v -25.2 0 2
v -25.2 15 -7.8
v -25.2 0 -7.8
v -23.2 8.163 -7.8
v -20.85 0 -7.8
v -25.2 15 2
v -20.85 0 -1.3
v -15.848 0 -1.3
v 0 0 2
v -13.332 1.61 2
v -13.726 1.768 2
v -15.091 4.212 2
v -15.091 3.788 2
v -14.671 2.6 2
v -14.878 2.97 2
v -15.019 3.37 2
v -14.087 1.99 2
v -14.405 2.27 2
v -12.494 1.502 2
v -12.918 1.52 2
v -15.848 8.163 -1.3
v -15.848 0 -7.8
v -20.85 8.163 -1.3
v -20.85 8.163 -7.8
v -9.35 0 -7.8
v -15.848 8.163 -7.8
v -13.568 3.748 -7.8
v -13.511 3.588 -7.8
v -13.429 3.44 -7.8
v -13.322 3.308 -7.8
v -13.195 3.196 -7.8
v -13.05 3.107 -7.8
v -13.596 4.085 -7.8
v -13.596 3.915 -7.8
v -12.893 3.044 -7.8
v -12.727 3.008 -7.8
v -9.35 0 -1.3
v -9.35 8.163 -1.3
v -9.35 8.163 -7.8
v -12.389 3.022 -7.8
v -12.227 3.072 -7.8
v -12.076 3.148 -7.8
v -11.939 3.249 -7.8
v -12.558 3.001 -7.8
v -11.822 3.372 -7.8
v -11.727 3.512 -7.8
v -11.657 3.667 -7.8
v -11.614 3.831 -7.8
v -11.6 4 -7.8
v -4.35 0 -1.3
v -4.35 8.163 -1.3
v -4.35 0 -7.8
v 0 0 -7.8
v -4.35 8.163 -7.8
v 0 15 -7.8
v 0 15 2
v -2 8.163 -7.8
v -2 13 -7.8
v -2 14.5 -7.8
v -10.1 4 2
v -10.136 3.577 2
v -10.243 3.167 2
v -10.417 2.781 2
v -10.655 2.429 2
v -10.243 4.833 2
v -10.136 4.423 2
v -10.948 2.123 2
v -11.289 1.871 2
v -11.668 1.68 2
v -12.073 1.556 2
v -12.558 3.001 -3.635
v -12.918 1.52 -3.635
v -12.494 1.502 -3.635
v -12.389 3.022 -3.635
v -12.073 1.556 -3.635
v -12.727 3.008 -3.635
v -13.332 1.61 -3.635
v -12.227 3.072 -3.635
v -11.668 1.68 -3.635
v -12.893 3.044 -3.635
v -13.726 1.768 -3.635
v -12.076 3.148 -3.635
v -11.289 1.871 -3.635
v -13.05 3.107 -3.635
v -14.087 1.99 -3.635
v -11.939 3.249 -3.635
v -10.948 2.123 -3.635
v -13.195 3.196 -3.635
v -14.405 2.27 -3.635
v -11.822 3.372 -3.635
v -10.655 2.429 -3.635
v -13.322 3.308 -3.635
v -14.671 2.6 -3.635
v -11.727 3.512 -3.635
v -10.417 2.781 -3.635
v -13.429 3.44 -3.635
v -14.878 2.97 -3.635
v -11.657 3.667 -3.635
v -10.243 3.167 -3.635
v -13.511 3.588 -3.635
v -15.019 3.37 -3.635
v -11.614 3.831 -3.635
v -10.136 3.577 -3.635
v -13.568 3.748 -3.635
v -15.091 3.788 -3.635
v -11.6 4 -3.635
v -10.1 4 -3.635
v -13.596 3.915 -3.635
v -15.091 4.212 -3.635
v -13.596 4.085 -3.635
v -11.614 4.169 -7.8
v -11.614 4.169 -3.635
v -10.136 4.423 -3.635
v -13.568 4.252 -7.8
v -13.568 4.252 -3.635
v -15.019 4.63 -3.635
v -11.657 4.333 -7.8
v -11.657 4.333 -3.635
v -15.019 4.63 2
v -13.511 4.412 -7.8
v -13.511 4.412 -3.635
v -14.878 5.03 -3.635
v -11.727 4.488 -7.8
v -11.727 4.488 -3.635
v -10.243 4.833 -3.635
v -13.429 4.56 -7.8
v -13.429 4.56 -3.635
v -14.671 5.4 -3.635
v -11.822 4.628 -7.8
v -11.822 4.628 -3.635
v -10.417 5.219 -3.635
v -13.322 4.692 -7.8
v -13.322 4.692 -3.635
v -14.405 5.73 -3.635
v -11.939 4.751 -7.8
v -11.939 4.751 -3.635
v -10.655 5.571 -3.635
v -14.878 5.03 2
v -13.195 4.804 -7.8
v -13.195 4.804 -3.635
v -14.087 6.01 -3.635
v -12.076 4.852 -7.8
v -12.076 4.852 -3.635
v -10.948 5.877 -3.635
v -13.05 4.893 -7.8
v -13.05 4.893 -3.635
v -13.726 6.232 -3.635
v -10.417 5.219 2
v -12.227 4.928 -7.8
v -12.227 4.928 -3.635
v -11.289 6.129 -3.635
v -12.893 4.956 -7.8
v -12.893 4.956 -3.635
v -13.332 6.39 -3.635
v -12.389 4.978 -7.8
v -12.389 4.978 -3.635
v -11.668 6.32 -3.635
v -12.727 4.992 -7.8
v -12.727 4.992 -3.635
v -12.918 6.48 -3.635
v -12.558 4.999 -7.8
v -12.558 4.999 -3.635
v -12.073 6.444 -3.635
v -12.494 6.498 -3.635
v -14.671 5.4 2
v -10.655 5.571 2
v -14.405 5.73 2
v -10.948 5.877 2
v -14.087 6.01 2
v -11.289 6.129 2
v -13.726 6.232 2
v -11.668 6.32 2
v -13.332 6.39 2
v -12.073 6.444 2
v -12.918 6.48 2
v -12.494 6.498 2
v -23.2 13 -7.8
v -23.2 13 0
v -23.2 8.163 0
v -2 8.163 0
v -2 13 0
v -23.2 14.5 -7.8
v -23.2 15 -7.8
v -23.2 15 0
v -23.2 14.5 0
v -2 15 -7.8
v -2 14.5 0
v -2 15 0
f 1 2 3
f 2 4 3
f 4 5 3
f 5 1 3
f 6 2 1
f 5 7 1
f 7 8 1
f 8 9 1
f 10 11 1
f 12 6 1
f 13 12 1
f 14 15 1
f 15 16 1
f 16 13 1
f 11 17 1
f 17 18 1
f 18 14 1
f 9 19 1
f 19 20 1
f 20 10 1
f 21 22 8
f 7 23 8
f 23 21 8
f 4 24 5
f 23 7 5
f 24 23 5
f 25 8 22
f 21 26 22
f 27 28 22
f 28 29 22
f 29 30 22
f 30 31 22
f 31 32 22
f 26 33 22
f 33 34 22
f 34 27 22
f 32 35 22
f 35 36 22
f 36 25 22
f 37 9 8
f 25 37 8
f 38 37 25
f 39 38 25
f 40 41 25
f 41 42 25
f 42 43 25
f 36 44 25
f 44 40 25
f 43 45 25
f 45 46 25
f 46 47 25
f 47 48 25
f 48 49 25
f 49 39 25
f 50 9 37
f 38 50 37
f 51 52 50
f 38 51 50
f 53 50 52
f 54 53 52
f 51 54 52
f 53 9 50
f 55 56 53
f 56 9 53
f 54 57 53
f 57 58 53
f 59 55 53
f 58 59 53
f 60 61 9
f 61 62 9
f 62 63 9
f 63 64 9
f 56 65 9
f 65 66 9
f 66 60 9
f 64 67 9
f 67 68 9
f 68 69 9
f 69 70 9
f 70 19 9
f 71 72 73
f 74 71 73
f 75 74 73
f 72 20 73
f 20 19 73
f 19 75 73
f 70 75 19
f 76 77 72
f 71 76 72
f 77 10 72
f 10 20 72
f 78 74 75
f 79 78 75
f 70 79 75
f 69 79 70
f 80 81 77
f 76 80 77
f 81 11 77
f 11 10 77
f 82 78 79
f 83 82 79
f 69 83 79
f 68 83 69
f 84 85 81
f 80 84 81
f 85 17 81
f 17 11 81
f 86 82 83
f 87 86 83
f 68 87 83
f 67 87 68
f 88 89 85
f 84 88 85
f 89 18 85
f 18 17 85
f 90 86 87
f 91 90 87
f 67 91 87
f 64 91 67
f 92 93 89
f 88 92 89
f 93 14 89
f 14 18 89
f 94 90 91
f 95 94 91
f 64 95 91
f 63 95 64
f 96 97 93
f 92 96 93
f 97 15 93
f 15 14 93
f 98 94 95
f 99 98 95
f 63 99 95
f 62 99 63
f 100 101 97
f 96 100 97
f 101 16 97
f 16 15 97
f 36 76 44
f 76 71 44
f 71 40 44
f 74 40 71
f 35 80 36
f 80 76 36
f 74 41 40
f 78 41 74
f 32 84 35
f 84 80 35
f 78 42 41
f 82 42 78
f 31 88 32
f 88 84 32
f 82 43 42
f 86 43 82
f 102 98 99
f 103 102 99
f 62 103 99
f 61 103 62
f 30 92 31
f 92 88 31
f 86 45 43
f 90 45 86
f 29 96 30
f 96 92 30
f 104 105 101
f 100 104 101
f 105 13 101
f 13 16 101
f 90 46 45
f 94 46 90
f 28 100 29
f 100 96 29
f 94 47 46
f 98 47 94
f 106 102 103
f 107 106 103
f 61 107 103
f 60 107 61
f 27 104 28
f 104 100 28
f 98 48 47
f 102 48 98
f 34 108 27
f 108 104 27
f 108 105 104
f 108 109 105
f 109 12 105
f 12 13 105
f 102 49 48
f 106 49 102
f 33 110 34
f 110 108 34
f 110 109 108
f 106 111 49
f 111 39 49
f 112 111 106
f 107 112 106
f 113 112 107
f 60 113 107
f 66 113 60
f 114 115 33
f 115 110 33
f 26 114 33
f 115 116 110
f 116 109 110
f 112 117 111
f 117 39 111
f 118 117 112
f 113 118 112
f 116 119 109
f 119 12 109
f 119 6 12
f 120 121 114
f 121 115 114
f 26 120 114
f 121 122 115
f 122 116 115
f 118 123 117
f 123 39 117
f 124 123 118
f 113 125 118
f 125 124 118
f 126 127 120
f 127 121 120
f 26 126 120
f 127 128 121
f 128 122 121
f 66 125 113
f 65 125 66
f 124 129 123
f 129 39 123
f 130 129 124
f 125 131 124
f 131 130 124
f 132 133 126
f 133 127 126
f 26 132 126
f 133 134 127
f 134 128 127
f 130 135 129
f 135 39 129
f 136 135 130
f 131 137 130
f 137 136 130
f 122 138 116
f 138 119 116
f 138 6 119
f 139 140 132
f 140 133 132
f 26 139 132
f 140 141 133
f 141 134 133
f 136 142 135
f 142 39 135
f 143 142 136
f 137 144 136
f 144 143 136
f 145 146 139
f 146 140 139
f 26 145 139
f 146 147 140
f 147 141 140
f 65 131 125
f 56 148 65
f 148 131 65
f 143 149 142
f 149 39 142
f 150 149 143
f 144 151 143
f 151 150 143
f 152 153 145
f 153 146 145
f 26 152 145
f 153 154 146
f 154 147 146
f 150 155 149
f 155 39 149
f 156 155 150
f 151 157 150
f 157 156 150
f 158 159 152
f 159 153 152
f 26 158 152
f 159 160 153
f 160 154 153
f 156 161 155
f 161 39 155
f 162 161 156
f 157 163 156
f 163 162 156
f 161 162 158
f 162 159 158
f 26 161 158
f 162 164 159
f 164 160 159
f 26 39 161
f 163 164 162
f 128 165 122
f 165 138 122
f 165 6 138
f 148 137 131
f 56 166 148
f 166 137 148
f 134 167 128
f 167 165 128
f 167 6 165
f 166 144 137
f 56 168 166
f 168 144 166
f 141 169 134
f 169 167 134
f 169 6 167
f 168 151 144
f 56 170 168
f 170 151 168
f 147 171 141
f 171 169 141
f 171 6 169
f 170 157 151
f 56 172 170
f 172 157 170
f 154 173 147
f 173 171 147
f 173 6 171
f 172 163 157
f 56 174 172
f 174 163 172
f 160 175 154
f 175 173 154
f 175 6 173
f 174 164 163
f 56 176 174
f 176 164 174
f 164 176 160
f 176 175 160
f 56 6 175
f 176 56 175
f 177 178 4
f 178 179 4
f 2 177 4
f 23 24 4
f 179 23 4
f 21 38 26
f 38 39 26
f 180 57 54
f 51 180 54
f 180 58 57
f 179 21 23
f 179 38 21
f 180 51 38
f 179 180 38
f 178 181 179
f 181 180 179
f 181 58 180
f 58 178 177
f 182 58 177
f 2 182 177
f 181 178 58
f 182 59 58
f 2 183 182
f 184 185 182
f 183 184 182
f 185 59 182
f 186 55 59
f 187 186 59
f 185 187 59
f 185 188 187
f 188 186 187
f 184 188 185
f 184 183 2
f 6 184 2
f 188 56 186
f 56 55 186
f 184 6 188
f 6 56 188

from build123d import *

# Parameters (mm, degrees)
SKETCH2_W           = 25.2
SKETCH2_H           = 15
BOSS_EXTRUDE2_DEPTH = 2
SKETCH3_W           = 21.2
SKETCH3_H           = 2
BOSS_EXTRUDE3_DEPTH = 7.8
SKETCH8_W           = 2.35
SKETCH8_H           = 8.163083502
SKETCH8_W_2         = 6.497887862
BOSS_EXTRUDE6_DEPTH = 7.8
SKETCH9_W           = 5
SKETCH9_H           = 8.163083502
SKETCH9_W_2         = 5.002112138
BOSS_EXTRUDE7_DEPTH = 1.3
SKETCH10_W          = 21.2
SKETCH10_H          = 7.8
CUT_EXTRUDE3_DEPTH  = 0.5
SKETCH12_R          = 1
CUT_EXTRUDE4_DEPTH  = 31.920543333
SKETCH13_R          = 2.5
CUT_EXTRUDE5_DEPTH  = 5.634787343


with BuildPart() as part:
    # Sketch2 → Boss-Extrude2 (new body)
    with BuildSketch(Plane.XY):
        with Locations((-12.6, 7.5)):
            Rectangle(SKETCH2_W, SKETCH2_H)
    extrude(amount=BOSS_EXTRUDE2_DEPTH)

    # Sketch3 → Boss-Extrude3 (add)
    with BuildSketch(Plane(origin=(0, 0, 0), x_dir=(-1, 0, 0), z_dir=(0, 0, -1))):
        Polygon((2, 15), (0, 15), (0, 0), (2, 0), (2, 13), align=None)
        with Locations((12.6, 14)):
            Rectangle(SKETCH3_W, SKETCH3_H)
        Polygon((25.2, 15), (23.2, 15), (23.2, 13), (23.2, 0), (25.2, 0), align=None)
    extrude(amount=BOSS_EXTRUDE3_DEPTH)

    # Sketch8 → Boss-Extrude6 (add)
    with BuildSketch(Plane(origin=(0, 0, 0), x_dir=(-1, 0, 0), z_dir=(0, 0, -1))):
        with Locations((3.175, 4.081541751)):
            Rectangle(SKETCH8_W, SKETCH8_H)
        with Locations((12.598943931, 4.081541751)):
            Rectangle(SKETCH8_W_2, SKETCH8_H)
        with Locations((22.025, 4.081541751)):
            Rectangle(SKETCH8_W, SKETCH8_H)
    extrude(amount=BOSS_EXTRUDE6_DEPTH)

    # Sketch9 → Boss-Extrude7 (add)
    with BuildSketch(Plane(origin=(0, 0, 0), x_dir=(-1, 0, 0), z_dir=(0, 0, -1))):
        with Locations((6.85, 4.081541751)):
            Rectangle(SKETCH9_W, SKETCH9_H)
        with Locations((18.348943931, 4.081541751)):
            Rectangle(SKETCH9_W_2, SKETCH9_H)
    extrude(amount=BOSS_EXTRUDE7_DEPTH)

    # Sketch10 → Cut-Extrude3 (cut)
    with BuildSketch(Plane(origin=(0, 15, 0), x_dir=(1, 0, 0), z_dir=(0, 1, 0))):
        with Locations((-12.6, 3.9)):
            Rectangle(SKETCH10_W, SKETCH10_H)
    extrude(amount=-CUT_EXTRUDE3_DEPTH, mode=Mode.SUBTRACT)

    # Sketch12 → Cut-Extrude4 (cut, through all)
    with BuildSketch(Plane.XY.offset(2)):
        with Locations((-12.6, 4)):
            Circle(SKETCH12_R)
    extrude(amount=-CUT_EXTRUDE4_DEPTH, mode=Mode.SUBTRACT)

    # Sketch13 → Cut-Extrude5 (cut)
    with BuildSketch(Plane.XY.offset(2)):
        with Locations((-12.6, 4)):
            Circle(SKETCH13_R)
    extrude(amount=-CUT_EXTRUDE5_DEPTH, mode=Mode.SUBTRACT)


solid = part.part
